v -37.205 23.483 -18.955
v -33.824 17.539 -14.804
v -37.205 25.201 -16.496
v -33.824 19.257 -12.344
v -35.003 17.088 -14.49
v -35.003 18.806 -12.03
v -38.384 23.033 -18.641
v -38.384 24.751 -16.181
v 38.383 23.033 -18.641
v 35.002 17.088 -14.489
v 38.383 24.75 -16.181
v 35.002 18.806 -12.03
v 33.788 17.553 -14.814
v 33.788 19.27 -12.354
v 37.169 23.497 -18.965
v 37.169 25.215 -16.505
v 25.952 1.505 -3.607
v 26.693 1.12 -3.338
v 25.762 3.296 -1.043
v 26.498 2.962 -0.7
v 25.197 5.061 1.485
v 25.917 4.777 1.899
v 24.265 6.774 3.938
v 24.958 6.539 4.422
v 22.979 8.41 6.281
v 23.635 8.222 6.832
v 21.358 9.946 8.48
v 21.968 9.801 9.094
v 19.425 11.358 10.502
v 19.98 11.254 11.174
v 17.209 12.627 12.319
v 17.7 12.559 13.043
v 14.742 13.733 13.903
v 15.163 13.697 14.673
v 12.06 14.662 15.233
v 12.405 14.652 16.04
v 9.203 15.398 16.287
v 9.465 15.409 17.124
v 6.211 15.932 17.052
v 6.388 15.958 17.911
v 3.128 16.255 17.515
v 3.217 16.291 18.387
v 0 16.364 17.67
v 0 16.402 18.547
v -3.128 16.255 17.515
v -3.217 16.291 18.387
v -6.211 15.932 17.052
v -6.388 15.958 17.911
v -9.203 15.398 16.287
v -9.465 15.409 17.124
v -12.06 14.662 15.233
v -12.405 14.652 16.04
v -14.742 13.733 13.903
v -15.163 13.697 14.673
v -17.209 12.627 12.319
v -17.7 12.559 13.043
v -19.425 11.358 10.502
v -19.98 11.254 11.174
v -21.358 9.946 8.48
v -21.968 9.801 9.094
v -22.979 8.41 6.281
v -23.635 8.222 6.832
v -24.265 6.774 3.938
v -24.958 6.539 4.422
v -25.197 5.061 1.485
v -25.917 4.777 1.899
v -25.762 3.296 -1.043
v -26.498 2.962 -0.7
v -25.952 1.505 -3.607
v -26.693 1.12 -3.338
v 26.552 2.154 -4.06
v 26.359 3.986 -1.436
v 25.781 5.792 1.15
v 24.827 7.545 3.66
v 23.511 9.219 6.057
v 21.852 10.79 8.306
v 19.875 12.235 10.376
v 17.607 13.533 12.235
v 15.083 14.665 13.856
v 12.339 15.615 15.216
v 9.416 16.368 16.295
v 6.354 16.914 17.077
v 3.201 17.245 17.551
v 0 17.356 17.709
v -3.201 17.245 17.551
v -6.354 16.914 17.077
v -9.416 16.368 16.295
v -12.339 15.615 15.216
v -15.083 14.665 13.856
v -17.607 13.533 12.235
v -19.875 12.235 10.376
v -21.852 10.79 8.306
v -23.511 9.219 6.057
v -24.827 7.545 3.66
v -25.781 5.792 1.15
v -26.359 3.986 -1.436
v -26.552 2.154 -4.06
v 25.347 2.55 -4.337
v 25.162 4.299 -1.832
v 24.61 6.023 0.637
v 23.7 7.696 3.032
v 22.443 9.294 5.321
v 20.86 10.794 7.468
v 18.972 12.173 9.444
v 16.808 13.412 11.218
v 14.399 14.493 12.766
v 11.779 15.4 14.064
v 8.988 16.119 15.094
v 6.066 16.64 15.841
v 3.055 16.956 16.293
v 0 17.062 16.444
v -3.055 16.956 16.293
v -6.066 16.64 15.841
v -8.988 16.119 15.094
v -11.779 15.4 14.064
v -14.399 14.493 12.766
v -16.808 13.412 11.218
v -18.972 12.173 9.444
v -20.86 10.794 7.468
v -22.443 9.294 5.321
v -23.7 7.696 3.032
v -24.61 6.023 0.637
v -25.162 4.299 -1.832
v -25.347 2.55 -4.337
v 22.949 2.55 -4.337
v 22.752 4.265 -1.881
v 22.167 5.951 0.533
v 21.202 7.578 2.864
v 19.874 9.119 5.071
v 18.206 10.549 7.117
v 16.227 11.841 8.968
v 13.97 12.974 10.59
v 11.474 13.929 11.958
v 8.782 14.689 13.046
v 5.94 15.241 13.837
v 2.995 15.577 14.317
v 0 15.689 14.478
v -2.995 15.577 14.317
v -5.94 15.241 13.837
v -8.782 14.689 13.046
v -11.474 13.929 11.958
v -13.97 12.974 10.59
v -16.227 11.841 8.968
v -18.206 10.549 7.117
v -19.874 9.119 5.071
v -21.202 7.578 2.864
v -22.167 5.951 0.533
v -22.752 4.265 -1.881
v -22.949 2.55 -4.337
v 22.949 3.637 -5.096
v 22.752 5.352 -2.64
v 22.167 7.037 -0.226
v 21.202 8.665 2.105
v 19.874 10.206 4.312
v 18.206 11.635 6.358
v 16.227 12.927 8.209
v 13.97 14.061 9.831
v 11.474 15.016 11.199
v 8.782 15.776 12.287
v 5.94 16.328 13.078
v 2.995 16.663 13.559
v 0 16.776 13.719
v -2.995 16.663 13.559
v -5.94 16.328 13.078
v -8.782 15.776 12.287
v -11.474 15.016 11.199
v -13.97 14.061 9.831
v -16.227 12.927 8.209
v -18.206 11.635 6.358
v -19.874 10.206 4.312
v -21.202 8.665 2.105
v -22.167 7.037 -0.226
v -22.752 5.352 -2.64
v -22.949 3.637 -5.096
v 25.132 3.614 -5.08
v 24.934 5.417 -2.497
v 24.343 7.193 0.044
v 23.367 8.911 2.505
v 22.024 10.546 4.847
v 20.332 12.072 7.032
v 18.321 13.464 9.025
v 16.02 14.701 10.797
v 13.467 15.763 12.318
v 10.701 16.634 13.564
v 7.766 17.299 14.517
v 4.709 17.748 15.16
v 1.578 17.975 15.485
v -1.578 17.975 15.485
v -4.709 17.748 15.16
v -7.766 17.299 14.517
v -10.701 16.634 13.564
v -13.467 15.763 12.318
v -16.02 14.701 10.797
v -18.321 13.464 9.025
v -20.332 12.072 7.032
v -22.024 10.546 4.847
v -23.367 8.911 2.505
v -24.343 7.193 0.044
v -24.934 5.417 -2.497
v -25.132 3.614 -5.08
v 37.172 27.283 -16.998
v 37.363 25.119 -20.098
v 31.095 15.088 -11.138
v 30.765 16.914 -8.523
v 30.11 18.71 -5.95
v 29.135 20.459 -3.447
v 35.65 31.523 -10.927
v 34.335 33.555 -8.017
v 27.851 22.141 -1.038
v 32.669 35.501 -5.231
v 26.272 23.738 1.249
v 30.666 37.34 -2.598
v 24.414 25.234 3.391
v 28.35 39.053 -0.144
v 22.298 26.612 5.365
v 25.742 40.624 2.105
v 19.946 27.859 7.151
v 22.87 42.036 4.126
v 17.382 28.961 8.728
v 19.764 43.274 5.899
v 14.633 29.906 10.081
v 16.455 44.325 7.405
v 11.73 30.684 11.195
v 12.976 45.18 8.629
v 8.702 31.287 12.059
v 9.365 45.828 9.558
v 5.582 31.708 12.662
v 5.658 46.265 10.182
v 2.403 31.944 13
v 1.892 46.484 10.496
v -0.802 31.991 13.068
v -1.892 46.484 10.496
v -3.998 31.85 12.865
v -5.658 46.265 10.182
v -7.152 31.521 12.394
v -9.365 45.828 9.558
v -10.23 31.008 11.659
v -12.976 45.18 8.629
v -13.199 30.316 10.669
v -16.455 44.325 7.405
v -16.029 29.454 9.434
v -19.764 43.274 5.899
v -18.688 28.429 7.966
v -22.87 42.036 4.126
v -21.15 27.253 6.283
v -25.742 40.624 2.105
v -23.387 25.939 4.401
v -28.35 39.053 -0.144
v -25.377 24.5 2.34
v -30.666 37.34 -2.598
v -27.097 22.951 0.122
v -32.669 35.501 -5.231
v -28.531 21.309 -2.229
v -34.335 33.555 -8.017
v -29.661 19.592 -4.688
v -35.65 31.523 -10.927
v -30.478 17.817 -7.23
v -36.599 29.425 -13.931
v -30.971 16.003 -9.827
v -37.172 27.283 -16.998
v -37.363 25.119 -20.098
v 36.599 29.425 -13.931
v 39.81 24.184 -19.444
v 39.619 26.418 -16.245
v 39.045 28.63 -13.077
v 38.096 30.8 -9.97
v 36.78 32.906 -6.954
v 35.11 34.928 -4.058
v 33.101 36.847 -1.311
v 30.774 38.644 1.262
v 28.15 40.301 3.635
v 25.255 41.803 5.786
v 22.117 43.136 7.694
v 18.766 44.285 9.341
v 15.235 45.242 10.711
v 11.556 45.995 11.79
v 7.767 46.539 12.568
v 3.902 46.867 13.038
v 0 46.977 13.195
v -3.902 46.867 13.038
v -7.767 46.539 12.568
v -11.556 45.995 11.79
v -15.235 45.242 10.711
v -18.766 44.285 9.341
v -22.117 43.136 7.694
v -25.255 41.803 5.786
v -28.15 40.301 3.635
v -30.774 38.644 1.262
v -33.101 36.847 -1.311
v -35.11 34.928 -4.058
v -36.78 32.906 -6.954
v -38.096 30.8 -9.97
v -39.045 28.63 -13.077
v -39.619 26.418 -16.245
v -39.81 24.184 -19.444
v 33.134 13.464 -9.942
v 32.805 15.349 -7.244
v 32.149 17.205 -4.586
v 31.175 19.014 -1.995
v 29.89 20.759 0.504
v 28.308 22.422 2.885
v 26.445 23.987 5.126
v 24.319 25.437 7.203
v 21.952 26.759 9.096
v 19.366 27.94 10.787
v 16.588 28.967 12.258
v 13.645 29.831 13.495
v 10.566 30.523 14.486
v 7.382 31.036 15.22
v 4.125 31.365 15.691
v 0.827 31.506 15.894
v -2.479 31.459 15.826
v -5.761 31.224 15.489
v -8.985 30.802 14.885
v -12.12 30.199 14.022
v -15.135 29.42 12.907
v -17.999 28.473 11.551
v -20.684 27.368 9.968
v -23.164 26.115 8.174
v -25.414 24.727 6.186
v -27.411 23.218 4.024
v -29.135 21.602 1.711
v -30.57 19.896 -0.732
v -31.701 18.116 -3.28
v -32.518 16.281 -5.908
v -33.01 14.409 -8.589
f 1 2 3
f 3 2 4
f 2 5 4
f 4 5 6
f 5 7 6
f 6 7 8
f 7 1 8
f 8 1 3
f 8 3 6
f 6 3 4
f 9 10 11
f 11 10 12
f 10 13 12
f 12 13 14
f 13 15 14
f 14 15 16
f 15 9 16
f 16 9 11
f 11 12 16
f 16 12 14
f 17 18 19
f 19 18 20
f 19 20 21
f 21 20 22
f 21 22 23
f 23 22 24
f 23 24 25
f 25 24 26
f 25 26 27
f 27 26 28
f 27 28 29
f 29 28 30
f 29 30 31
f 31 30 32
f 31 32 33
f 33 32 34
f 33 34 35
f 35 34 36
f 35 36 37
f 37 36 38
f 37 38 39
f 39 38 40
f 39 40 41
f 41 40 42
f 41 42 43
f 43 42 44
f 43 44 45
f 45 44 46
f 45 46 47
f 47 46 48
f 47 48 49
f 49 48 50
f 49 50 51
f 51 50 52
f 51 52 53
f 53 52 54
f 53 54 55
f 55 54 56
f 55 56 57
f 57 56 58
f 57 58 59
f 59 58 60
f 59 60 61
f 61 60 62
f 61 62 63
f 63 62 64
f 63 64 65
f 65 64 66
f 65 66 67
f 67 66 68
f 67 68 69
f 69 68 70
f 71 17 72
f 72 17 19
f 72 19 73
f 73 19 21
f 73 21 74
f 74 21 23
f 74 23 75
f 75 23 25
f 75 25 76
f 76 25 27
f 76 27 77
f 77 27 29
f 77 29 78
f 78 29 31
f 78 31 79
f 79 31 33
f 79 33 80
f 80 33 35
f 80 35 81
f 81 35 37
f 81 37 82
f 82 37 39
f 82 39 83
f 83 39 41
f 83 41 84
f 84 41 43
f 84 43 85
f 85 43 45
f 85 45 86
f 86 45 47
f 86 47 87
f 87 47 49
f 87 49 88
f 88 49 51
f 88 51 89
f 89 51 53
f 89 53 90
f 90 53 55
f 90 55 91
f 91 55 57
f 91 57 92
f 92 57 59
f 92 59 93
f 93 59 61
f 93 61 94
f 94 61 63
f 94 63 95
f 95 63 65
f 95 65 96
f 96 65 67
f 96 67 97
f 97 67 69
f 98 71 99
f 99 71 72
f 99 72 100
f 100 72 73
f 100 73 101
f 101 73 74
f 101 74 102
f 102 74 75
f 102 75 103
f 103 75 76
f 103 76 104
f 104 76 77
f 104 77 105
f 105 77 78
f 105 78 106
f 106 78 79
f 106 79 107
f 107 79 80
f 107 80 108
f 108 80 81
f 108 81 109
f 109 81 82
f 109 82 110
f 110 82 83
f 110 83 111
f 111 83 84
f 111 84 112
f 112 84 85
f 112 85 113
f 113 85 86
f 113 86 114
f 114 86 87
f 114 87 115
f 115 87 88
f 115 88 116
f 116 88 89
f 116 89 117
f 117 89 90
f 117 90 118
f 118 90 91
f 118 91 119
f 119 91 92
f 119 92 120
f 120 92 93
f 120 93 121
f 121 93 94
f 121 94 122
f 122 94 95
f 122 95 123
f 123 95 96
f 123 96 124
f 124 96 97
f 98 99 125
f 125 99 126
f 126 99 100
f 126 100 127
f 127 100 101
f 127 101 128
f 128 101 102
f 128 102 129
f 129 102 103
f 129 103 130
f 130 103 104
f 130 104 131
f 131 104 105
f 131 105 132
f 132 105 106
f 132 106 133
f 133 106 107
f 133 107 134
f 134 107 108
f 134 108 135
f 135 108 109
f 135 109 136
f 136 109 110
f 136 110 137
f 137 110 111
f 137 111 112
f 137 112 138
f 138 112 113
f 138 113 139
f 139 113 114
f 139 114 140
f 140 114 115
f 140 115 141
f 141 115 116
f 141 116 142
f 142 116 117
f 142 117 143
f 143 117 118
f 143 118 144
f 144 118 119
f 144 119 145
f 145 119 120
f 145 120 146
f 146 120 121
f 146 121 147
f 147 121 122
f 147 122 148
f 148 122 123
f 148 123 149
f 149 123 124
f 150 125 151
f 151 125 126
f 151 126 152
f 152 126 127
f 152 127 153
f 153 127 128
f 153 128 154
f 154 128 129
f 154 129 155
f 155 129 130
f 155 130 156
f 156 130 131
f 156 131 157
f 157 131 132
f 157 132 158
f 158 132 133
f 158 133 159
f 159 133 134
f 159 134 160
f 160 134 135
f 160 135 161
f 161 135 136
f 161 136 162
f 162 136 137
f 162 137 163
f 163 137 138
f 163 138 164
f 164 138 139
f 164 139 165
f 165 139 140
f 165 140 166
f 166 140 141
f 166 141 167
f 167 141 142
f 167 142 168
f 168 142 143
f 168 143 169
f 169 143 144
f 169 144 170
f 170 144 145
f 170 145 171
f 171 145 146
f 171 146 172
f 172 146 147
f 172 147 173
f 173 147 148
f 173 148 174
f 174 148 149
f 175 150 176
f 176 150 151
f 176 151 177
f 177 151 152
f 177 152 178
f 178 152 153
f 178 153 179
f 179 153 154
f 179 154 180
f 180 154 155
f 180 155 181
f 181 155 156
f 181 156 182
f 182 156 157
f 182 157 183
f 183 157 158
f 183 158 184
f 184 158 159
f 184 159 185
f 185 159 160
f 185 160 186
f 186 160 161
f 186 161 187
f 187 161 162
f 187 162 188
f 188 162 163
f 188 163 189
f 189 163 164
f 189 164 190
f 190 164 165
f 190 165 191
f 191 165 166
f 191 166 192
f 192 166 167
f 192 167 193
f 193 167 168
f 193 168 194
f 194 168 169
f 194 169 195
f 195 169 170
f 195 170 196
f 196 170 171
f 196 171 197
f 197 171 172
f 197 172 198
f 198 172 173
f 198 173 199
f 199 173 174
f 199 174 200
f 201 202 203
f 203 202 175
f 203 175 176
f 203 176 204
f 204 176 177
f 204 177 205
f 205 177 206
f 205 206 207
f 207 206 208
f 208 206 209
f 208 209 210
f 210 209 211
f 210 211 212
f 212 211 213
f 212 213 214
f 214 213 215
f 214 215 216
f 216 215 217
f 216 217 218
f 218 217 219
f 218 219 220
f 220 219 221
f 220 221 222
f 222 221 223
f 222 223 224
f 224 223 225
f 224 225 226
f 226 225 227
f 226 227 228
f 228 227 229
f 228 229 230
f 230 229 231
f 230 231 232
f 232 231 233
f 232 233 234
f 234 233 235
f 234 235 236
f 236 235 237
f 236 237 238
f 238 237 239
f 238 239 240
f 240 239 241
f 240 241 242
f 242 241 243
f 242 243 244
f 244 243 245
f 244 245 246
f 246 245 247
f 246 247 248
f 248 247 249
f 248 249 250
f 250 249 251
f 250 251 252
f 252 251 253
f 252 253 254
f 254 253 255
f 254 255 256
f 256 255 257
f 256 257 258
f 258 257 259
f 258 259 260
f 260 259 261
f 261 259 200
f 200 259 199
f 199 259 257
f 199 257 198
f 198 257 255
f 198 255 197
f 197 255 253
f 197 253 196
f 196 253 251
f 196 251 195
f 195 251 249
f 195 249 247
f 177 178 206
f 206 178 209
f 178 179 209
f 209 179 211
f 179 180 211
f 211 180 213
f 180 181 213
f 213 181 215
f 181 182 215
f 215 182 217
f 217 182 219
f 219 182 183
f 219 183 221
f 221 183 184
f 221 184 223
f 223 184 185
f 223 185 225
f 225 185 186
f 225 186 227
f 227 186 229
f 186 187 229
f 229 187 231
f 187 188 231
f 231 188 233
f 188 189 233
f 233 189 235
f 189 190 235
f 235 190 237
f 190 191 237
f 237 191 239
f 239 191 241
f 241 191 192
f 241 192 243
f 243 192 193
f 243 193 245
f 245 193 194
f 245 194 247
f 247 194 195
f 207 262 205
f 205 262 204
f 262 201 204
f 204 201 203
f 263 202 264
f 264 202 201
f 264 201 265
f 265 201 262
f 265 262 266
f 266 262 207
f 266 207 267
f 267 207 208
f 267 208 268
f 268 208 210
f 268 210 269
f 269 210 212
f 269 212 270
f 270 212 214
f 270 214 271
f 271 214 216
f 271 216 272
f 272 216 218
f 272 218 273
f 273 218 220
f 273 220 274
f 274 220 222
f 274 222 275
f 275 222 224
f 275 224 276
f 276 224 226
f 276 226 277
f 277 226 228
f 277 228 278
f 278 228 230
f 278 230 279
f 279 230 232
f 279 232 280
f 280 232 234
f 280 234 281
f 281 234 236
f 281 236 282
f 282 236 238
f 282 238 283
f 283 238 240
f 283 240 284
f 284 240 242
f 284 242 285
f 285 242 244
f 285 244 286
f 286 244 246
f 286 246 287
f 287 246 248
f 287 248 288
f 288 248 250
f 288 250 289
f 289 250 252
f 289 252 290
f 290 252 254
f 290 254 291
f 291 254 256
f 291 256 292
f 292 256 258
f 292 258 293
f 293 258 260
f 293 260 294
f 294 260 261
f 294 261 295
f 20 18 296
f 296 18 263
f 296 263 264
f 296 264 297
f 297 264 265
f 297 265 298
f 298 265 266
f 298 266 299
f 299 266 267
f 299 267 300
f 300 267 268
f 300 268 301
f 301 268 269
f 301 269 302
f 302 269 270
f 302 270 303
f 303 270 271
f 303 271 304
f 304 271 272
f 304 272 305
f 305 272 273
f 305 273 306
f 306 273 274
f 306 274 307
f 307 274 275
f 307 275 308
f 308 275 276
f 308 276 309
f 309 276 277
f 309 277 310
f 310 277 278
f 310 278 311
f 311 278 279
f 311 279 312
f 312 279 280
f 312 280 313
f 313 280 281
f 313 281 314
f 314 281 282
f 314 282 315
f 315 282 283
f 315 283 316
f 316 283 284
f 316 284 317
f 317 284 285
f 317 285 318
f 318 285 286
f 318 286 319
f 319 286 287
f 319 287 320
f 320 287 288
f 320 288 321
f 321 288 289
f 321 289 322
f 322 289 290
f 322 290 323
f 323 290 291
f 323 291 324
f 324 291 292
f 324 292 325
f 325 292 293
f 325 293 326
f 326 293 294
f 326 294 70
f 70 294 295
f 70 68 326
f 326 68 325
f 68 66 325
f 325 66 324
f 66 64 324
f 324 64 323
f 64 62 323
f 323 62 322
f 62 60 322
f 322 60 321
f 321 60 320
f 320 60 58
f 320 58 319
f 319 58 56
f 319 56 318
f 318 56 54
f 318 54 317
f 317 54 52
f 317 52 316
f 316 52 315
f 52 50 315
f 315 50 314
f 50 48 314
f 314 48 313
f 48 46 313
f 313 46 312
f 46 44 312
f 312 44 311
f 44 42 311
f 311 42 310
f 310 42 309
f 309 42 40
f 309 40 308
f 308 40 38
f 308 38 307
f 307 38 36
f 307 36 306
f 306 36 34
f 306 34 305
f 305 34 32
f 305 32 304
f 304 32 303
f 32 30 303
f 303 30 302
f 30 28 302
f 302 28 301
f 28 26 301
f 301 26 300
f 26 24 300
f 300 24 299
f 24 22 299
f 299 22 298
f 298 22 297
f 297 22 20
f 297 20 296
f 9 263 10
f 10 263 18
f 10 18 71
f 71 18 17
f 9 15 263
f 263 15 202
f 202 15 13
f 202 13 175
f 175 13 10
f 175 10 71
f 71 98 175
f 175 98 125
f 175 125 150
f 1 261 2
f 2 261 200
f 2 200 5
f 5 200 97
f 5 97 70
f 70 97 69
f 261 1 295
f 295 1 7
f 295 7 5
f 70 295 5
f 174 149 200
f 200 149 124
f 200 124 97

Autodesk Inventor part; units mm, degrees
ref_plane "YZ Plane" through (0, 0, 0) normal (1, 0, 0) x (0, 1, 0)
ref_plane "XZ Plane" through (0, 0, 0) normal (0, 1, 0) x (-1, 0, 0)
ref_plane "XY Plane" through (0, 0, 0) normal (0, 0, 1) x (1, 0, 0)
sketch "Sketch68" plane through (0, 0, 0) normal (1, 0, 0) x (0, 1, 0)
  line L0 (1, 4.6737) -> (23, 4.6737) construction
  line L1 (7.0021, -2.9903) -> (-7.0029, -0.0135)
  line L2 (7.2385, 26.8729) -> (5.7713, 27.1847)
  line L3 (2.4565, 4.3755) -> (1, 4.6737)
  line L4 (5.7713, 27.1847) -> (1, 4.6737)
  line L5 (7.2385, 26.8729) -> (2.4565, 4.3755)
  point P0 (0, 0)
  point P1 (2.225, 5.1772)
sketch "Sketch184" plane through (0, 0, 0) normal (1, 0, 0) x (0, 1, 0)
  arc A0 (-3.5, -3.0972) -> (0, -1.6204) centre (-4.281, 3.6397) ccw
  arc A1 (0, -1.6204) -> (2.2822, 2) centre (-4.3557, 3.6547) ccw
  arc A2 (2.2822, 2) -> (2.459, 4.3851) centre (-8.8285, 4.0231) ccw
  arc A3 (2.459, 4.3851) -> (2.3883, 6) centre (-72.7121, 1.9029) ccw
  line L0 (-3.5, -3.0972) -> (-3.5, -3.6807) projected
  arc A4 (2.3883, 6) -> (-3.5, -3.0972) centre (8.6947, -4.5362) ccw
  point P0 (0, 0)
sketch "Sketch213" plane through (0, 0, 0) normal (1, 0, 0) x (0, 1, 0)
  line L0 (13.3414, -11.8728) -> (-10.8201, 5)
  line L1 (46.9769, 13.1952) -> (16.4024, 18.5466)
  line L2 (-14, -25) -> (0.7357, -50.4491)
  line L3 (0.7357, -50.4491) -> (1.9473, -49.7476)
  line L4 (1.9473, -49.7476) -> (-11.7207, -26.1425)
  line L5 (-11.7207, -26.1425) -> (-10, -24)
  line L6 (-10, -24) -> (-10.853, -23.4043)
  line L7 (-10.853, -23.4043) -> (-11.992, -25.0353)
  line L8 (-11.992, -25.0353) -> (-13.0313, -25.7169)
  line L9 (-13.0313, -25.7169) -> (-11.992, -25.0353) projected
  line L10 (-13.0313, -25.7169) -> (-12.7653, -23.856)
  line L11 (-12.7653, -23.856) -> (-14, -25)
  line L12 (46.5114, 10.5356) -> (18.0034, 15.5254)
  line L13 (18.0034, 15.5254) -> (16.7759, 13.7195)
  line L14 (16.7759, 13.7195) -> (15.6891, 14.4784)
  line L15 (-11.992, -25.0353) -> (16.9748, 16.4444) projected
  line L16 (15.6891, 14.4784) -> (17.062, 16.4444)
  line L17 (17.062, 16.4444) -> (17.3561, 17.7094)
  line L18 (17.3561, 17.7094) -> (16.3637, 17.6698)
  line L19 (16.3637, 17.6698) -> (16.4024, 18.5466)
  line L20 (46.9769, 13.1952) -> (46.5114, 10.5356)
  point P0 (0, 0)
  point P1 (3.3399, -2.2736)
  point P2 (-1.2043, -8.7808)
  dimension "d600" = 1.4
  dimension "d601" = 2.7
  dimension "d603" = 1.265
revolve "Revolution5" add sketch "Sketch213" angle 180 mid plane about axis through (0, 13.3414, -11.8728) along (0, -0.8199, 0.5725) contours L20 L12 L13 L14 L16 L17 L18 L19 L1
sketch "Sketch214" plane through (25.3467, 2.5499, -4.3367) normal (0, -0.5725, -0.8199) x (-1, 0, 0)
  line L0 (-13.0367, 24.9829) -> (-11.8218, 25.5494)
  line L1 (-12.0166, 27.5278) -> (-14.4637, 26.3867) projected
  line L2 (-13.0367, 24.9829) -> (-9.6557, 17.7324)
  line L3 (-11.8218, 25.5494) -> (-8.4409, 18.2989)
  line L4 (-8.4409, 18.2989) -> (-9.6557, 17.7324)
  line L5 (-14.4637, 26.3867) -> (-1.3459, -1.7444) projected
  line L6 (69, 30) -> (69, 11.3718) construction
  line L7 (62.5521, 25.5326) -> (59.1711, 18.2822)
  line L8 (63.7303, 24.9832) -> (62.5521, 25.5326)
  line L9 (63.7303, 24.9832) -> (60.3493, 17.7328)
  line L10 (59.1711, 18.2822) -> (60.3493, 17.7328)
  line L11 (65.1571, 26.3867) -> (62.7101, 27.5278) projected
  line L12 (62.7101, 27.5278) -> (50.4789, 1.298) projected
  line L13 (52.0393, -1.7444) -> (65.1571, 26.3867) projected
  point P0 (25.3467, -4.5735)
  dimension "d606" = 0
  dimension "d612" = 1.875
  dimension "d613" = 8
  dimension "d614" = 0.7
  dimension "d615" = 0.7
extrude "Extrusion162" cut sketch "Sketch214" against normal blind 3
properties part number "A1_V1_M2_dropArm_WOK_meso_tall_VIS_lft"
